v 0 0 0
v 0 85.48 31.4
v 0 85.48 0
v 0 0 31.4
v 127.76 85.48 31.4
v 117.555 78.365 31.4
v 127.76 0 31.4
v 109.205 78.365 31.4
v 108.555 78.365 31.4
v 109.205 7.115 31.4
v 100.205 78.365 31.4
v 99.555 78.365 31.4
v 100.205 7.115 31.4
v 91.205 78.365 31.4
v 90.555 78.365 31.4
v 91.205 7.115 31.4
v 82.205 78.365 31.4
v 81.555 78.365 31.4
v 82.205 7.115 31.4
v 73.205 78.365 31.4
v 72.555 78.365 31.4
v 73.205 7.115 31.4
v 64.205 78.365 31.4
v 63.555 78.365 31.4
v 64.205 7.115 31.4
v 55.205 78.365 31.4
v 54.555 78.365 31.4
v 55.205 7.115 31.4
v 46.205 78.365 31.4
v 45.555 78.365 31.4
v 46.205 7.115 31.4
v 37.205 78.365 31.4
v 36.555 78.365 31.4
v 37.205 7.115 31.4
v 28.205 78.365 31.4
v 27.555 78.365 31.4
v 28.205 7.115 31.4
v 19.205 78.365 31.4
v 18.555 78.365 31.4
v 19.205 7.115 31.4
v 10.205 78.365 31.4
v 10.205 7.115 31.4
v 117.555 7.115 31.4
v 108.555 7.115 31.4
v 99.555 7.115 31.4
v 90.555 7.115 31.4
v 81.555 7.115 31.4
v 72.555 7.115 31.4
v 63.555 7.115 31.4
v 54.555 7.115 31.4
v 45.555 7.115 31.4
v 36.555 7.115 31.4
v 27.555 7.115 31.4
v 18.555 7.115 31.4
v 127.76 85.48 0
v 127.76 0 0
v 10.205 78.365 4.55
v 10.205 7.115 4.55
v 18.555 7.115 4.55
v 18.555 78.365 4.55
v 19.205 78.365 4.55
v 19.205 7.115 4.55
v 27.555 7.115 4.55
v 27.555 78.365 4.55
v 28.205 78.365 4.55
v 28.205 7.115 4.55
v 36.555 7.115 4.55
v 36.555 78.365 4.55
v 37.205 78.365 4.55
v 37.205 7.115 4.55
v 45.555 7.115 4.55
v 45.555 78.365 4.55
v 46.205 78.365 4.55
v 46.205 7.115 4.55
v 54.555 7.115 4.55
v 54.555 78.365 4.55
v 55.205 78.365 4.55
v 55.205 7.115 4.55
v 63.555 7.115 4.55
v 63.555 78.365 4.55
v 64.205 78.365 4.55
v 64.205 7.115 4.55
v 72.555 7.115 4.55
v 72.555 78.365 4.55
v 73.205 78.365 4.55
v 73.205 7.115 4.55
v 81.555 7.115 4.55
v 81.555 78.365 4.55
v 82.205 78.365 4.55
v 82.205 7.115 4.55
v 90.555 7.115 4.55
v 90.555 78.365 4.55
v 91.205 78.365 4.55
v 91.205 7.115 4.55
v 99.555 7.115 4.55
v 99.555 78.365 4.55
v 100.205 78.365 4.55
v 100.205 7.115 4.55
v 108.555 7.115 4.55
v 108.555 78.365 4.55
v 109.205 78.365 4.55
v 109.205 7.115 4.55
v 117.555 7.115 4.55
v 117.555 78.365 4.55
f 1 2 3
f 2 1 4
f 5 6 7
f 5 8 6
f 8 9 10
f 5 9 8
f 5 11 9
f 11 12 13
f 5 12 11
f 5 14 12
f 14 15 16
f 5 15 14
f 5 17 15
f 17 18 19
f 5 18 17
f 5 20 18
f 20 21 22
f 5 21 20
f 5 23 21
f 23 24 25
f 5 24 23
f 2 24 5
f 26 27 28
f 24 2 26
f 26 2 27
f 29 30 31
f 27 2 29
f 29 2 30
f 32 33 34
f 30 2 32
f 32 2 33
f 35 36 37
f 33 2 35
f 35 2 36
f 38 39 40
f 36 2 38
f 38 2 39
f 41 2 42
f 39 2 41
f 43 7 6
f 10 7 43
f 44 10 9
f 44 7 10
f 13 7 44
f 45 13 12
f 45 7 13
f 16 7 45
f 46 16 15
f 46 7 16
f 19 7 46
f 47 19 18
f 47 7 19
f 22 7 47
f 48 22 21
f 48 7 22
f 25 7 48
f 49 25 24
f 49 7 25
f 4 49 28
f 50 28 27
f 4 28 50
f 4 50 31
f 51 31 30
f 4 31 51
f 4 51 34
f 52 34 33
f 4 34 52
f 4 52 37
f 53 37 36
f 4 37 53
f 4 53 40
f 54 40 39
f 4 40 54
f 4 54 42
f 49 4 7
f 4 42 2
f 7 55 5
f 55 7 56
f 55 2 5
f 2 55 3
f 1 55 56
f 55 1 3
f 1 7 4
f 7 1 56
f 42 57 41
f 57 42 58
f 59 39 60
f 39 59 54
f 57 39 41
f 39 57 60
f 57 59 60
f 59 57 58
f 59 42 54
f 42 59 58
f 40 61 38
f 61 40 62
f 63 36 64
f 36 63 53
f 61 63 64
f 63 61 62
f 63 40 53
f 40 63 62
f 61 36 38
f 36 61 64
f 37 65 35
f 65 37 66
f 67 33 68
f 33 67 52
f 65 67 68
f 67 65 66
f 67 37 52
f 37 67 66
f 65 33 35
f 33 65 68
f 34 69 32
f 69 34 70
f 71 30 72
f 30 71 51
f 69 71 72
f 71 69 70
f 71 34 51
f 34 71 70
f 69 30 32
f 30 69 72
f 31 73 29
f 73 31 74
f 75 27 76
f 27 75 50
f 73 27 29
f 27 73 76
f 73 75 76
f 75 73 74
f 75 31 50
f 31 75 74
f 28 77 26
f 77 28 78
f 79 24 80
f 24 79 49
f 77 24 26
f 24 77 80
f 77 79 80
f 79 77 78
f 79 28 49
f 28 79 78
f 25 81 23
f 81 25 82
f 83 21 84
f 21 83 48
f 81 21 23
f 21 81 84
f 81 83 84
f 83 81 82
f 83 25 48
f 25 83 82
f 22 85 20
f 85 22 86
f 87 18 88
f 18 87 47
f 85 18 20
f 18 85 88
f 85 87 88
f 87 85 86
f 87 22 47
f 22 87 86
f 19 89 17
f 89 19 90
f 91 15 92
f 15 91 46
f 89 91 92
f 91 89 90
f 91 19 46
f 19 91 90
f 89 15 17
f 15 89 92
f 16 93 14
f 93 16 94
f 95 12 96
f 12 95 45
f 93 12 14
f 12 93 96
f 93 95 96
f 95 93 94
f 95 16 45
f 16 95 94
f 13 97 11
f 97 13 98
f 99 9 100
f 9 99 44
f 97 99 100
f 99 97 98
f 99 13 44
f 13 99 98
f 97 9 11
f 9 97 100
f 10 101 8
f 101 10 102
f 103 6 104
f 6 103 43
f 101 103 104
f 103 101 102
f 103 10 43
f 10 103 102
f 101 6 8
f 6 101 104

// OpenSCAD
// NEST 12 Well Reservoir 15 mL
// loadName: nest_12_reservoir_15ml
// Auto-generated by labware_to_stl.py from Opentrons V2 labware definition

$fn = 64;

difference() {
    // ── Labware body ──────────────────────────────────────────────
    cube([127.7600, 85.4800, 31.4000]);

    // ── Well cutouts ──────────────────────────────────────────────
    // Well A1
    translate([10.2050, 7.1150, 4.5500])
        cube([8.3500, 71.2500, 27.8500]);
    // Well A2
    translate([19.2050, 7.1150, 4.5500])
        cube([8.3500, 71.2500, 27.8500]);
    // Well A3
    translate([28.2050, 7.1150, 4.5500])
        cube([8.3500, 71.2500, 27.8500]);
    // Well A4
    translate([37.2050, 7.1150, 4.5500])
        cube([8.3500, 71.2500, 27.8500]);
    // Well A5
    translate([46.2050, 7.1150, 4.5500])
        cube([8.3500, 71.2500, 27.8500]);
    // Well A6
    translate([55.2050, 7.1150, 4.5500])
        cube([8.3500, 71.2500, 27.8500]);
    // Well A7
    translate([64.2050, 7.1150, 4.5500])
        cube([8.3500, 71.2500, 27.8500]);
    // Well A8
    translate([73.2050, 7.1150, 4.5500])
        cube([8.3500, 71.2500, 27.8500]);
    // Well A9
    translate([82.2050, 7.1150, 4.5500])
        cube([8.3500, 71.2500, 27.8500]);
    // Well A10
    translate([91.2050, 7.1150, 4.5500])
        cube([8.3500, 71.2500, 27.8500]);
    // Well A11
    translate([100.2050, 7.1150, 4.5500])
        cube([8.3500, 71.2500, 27.8500]);
    // Well A12
    translate([109.2050, 7.1150, 4.5500])
        cube([8.3500, 71.2500, 27.8500]);
}
